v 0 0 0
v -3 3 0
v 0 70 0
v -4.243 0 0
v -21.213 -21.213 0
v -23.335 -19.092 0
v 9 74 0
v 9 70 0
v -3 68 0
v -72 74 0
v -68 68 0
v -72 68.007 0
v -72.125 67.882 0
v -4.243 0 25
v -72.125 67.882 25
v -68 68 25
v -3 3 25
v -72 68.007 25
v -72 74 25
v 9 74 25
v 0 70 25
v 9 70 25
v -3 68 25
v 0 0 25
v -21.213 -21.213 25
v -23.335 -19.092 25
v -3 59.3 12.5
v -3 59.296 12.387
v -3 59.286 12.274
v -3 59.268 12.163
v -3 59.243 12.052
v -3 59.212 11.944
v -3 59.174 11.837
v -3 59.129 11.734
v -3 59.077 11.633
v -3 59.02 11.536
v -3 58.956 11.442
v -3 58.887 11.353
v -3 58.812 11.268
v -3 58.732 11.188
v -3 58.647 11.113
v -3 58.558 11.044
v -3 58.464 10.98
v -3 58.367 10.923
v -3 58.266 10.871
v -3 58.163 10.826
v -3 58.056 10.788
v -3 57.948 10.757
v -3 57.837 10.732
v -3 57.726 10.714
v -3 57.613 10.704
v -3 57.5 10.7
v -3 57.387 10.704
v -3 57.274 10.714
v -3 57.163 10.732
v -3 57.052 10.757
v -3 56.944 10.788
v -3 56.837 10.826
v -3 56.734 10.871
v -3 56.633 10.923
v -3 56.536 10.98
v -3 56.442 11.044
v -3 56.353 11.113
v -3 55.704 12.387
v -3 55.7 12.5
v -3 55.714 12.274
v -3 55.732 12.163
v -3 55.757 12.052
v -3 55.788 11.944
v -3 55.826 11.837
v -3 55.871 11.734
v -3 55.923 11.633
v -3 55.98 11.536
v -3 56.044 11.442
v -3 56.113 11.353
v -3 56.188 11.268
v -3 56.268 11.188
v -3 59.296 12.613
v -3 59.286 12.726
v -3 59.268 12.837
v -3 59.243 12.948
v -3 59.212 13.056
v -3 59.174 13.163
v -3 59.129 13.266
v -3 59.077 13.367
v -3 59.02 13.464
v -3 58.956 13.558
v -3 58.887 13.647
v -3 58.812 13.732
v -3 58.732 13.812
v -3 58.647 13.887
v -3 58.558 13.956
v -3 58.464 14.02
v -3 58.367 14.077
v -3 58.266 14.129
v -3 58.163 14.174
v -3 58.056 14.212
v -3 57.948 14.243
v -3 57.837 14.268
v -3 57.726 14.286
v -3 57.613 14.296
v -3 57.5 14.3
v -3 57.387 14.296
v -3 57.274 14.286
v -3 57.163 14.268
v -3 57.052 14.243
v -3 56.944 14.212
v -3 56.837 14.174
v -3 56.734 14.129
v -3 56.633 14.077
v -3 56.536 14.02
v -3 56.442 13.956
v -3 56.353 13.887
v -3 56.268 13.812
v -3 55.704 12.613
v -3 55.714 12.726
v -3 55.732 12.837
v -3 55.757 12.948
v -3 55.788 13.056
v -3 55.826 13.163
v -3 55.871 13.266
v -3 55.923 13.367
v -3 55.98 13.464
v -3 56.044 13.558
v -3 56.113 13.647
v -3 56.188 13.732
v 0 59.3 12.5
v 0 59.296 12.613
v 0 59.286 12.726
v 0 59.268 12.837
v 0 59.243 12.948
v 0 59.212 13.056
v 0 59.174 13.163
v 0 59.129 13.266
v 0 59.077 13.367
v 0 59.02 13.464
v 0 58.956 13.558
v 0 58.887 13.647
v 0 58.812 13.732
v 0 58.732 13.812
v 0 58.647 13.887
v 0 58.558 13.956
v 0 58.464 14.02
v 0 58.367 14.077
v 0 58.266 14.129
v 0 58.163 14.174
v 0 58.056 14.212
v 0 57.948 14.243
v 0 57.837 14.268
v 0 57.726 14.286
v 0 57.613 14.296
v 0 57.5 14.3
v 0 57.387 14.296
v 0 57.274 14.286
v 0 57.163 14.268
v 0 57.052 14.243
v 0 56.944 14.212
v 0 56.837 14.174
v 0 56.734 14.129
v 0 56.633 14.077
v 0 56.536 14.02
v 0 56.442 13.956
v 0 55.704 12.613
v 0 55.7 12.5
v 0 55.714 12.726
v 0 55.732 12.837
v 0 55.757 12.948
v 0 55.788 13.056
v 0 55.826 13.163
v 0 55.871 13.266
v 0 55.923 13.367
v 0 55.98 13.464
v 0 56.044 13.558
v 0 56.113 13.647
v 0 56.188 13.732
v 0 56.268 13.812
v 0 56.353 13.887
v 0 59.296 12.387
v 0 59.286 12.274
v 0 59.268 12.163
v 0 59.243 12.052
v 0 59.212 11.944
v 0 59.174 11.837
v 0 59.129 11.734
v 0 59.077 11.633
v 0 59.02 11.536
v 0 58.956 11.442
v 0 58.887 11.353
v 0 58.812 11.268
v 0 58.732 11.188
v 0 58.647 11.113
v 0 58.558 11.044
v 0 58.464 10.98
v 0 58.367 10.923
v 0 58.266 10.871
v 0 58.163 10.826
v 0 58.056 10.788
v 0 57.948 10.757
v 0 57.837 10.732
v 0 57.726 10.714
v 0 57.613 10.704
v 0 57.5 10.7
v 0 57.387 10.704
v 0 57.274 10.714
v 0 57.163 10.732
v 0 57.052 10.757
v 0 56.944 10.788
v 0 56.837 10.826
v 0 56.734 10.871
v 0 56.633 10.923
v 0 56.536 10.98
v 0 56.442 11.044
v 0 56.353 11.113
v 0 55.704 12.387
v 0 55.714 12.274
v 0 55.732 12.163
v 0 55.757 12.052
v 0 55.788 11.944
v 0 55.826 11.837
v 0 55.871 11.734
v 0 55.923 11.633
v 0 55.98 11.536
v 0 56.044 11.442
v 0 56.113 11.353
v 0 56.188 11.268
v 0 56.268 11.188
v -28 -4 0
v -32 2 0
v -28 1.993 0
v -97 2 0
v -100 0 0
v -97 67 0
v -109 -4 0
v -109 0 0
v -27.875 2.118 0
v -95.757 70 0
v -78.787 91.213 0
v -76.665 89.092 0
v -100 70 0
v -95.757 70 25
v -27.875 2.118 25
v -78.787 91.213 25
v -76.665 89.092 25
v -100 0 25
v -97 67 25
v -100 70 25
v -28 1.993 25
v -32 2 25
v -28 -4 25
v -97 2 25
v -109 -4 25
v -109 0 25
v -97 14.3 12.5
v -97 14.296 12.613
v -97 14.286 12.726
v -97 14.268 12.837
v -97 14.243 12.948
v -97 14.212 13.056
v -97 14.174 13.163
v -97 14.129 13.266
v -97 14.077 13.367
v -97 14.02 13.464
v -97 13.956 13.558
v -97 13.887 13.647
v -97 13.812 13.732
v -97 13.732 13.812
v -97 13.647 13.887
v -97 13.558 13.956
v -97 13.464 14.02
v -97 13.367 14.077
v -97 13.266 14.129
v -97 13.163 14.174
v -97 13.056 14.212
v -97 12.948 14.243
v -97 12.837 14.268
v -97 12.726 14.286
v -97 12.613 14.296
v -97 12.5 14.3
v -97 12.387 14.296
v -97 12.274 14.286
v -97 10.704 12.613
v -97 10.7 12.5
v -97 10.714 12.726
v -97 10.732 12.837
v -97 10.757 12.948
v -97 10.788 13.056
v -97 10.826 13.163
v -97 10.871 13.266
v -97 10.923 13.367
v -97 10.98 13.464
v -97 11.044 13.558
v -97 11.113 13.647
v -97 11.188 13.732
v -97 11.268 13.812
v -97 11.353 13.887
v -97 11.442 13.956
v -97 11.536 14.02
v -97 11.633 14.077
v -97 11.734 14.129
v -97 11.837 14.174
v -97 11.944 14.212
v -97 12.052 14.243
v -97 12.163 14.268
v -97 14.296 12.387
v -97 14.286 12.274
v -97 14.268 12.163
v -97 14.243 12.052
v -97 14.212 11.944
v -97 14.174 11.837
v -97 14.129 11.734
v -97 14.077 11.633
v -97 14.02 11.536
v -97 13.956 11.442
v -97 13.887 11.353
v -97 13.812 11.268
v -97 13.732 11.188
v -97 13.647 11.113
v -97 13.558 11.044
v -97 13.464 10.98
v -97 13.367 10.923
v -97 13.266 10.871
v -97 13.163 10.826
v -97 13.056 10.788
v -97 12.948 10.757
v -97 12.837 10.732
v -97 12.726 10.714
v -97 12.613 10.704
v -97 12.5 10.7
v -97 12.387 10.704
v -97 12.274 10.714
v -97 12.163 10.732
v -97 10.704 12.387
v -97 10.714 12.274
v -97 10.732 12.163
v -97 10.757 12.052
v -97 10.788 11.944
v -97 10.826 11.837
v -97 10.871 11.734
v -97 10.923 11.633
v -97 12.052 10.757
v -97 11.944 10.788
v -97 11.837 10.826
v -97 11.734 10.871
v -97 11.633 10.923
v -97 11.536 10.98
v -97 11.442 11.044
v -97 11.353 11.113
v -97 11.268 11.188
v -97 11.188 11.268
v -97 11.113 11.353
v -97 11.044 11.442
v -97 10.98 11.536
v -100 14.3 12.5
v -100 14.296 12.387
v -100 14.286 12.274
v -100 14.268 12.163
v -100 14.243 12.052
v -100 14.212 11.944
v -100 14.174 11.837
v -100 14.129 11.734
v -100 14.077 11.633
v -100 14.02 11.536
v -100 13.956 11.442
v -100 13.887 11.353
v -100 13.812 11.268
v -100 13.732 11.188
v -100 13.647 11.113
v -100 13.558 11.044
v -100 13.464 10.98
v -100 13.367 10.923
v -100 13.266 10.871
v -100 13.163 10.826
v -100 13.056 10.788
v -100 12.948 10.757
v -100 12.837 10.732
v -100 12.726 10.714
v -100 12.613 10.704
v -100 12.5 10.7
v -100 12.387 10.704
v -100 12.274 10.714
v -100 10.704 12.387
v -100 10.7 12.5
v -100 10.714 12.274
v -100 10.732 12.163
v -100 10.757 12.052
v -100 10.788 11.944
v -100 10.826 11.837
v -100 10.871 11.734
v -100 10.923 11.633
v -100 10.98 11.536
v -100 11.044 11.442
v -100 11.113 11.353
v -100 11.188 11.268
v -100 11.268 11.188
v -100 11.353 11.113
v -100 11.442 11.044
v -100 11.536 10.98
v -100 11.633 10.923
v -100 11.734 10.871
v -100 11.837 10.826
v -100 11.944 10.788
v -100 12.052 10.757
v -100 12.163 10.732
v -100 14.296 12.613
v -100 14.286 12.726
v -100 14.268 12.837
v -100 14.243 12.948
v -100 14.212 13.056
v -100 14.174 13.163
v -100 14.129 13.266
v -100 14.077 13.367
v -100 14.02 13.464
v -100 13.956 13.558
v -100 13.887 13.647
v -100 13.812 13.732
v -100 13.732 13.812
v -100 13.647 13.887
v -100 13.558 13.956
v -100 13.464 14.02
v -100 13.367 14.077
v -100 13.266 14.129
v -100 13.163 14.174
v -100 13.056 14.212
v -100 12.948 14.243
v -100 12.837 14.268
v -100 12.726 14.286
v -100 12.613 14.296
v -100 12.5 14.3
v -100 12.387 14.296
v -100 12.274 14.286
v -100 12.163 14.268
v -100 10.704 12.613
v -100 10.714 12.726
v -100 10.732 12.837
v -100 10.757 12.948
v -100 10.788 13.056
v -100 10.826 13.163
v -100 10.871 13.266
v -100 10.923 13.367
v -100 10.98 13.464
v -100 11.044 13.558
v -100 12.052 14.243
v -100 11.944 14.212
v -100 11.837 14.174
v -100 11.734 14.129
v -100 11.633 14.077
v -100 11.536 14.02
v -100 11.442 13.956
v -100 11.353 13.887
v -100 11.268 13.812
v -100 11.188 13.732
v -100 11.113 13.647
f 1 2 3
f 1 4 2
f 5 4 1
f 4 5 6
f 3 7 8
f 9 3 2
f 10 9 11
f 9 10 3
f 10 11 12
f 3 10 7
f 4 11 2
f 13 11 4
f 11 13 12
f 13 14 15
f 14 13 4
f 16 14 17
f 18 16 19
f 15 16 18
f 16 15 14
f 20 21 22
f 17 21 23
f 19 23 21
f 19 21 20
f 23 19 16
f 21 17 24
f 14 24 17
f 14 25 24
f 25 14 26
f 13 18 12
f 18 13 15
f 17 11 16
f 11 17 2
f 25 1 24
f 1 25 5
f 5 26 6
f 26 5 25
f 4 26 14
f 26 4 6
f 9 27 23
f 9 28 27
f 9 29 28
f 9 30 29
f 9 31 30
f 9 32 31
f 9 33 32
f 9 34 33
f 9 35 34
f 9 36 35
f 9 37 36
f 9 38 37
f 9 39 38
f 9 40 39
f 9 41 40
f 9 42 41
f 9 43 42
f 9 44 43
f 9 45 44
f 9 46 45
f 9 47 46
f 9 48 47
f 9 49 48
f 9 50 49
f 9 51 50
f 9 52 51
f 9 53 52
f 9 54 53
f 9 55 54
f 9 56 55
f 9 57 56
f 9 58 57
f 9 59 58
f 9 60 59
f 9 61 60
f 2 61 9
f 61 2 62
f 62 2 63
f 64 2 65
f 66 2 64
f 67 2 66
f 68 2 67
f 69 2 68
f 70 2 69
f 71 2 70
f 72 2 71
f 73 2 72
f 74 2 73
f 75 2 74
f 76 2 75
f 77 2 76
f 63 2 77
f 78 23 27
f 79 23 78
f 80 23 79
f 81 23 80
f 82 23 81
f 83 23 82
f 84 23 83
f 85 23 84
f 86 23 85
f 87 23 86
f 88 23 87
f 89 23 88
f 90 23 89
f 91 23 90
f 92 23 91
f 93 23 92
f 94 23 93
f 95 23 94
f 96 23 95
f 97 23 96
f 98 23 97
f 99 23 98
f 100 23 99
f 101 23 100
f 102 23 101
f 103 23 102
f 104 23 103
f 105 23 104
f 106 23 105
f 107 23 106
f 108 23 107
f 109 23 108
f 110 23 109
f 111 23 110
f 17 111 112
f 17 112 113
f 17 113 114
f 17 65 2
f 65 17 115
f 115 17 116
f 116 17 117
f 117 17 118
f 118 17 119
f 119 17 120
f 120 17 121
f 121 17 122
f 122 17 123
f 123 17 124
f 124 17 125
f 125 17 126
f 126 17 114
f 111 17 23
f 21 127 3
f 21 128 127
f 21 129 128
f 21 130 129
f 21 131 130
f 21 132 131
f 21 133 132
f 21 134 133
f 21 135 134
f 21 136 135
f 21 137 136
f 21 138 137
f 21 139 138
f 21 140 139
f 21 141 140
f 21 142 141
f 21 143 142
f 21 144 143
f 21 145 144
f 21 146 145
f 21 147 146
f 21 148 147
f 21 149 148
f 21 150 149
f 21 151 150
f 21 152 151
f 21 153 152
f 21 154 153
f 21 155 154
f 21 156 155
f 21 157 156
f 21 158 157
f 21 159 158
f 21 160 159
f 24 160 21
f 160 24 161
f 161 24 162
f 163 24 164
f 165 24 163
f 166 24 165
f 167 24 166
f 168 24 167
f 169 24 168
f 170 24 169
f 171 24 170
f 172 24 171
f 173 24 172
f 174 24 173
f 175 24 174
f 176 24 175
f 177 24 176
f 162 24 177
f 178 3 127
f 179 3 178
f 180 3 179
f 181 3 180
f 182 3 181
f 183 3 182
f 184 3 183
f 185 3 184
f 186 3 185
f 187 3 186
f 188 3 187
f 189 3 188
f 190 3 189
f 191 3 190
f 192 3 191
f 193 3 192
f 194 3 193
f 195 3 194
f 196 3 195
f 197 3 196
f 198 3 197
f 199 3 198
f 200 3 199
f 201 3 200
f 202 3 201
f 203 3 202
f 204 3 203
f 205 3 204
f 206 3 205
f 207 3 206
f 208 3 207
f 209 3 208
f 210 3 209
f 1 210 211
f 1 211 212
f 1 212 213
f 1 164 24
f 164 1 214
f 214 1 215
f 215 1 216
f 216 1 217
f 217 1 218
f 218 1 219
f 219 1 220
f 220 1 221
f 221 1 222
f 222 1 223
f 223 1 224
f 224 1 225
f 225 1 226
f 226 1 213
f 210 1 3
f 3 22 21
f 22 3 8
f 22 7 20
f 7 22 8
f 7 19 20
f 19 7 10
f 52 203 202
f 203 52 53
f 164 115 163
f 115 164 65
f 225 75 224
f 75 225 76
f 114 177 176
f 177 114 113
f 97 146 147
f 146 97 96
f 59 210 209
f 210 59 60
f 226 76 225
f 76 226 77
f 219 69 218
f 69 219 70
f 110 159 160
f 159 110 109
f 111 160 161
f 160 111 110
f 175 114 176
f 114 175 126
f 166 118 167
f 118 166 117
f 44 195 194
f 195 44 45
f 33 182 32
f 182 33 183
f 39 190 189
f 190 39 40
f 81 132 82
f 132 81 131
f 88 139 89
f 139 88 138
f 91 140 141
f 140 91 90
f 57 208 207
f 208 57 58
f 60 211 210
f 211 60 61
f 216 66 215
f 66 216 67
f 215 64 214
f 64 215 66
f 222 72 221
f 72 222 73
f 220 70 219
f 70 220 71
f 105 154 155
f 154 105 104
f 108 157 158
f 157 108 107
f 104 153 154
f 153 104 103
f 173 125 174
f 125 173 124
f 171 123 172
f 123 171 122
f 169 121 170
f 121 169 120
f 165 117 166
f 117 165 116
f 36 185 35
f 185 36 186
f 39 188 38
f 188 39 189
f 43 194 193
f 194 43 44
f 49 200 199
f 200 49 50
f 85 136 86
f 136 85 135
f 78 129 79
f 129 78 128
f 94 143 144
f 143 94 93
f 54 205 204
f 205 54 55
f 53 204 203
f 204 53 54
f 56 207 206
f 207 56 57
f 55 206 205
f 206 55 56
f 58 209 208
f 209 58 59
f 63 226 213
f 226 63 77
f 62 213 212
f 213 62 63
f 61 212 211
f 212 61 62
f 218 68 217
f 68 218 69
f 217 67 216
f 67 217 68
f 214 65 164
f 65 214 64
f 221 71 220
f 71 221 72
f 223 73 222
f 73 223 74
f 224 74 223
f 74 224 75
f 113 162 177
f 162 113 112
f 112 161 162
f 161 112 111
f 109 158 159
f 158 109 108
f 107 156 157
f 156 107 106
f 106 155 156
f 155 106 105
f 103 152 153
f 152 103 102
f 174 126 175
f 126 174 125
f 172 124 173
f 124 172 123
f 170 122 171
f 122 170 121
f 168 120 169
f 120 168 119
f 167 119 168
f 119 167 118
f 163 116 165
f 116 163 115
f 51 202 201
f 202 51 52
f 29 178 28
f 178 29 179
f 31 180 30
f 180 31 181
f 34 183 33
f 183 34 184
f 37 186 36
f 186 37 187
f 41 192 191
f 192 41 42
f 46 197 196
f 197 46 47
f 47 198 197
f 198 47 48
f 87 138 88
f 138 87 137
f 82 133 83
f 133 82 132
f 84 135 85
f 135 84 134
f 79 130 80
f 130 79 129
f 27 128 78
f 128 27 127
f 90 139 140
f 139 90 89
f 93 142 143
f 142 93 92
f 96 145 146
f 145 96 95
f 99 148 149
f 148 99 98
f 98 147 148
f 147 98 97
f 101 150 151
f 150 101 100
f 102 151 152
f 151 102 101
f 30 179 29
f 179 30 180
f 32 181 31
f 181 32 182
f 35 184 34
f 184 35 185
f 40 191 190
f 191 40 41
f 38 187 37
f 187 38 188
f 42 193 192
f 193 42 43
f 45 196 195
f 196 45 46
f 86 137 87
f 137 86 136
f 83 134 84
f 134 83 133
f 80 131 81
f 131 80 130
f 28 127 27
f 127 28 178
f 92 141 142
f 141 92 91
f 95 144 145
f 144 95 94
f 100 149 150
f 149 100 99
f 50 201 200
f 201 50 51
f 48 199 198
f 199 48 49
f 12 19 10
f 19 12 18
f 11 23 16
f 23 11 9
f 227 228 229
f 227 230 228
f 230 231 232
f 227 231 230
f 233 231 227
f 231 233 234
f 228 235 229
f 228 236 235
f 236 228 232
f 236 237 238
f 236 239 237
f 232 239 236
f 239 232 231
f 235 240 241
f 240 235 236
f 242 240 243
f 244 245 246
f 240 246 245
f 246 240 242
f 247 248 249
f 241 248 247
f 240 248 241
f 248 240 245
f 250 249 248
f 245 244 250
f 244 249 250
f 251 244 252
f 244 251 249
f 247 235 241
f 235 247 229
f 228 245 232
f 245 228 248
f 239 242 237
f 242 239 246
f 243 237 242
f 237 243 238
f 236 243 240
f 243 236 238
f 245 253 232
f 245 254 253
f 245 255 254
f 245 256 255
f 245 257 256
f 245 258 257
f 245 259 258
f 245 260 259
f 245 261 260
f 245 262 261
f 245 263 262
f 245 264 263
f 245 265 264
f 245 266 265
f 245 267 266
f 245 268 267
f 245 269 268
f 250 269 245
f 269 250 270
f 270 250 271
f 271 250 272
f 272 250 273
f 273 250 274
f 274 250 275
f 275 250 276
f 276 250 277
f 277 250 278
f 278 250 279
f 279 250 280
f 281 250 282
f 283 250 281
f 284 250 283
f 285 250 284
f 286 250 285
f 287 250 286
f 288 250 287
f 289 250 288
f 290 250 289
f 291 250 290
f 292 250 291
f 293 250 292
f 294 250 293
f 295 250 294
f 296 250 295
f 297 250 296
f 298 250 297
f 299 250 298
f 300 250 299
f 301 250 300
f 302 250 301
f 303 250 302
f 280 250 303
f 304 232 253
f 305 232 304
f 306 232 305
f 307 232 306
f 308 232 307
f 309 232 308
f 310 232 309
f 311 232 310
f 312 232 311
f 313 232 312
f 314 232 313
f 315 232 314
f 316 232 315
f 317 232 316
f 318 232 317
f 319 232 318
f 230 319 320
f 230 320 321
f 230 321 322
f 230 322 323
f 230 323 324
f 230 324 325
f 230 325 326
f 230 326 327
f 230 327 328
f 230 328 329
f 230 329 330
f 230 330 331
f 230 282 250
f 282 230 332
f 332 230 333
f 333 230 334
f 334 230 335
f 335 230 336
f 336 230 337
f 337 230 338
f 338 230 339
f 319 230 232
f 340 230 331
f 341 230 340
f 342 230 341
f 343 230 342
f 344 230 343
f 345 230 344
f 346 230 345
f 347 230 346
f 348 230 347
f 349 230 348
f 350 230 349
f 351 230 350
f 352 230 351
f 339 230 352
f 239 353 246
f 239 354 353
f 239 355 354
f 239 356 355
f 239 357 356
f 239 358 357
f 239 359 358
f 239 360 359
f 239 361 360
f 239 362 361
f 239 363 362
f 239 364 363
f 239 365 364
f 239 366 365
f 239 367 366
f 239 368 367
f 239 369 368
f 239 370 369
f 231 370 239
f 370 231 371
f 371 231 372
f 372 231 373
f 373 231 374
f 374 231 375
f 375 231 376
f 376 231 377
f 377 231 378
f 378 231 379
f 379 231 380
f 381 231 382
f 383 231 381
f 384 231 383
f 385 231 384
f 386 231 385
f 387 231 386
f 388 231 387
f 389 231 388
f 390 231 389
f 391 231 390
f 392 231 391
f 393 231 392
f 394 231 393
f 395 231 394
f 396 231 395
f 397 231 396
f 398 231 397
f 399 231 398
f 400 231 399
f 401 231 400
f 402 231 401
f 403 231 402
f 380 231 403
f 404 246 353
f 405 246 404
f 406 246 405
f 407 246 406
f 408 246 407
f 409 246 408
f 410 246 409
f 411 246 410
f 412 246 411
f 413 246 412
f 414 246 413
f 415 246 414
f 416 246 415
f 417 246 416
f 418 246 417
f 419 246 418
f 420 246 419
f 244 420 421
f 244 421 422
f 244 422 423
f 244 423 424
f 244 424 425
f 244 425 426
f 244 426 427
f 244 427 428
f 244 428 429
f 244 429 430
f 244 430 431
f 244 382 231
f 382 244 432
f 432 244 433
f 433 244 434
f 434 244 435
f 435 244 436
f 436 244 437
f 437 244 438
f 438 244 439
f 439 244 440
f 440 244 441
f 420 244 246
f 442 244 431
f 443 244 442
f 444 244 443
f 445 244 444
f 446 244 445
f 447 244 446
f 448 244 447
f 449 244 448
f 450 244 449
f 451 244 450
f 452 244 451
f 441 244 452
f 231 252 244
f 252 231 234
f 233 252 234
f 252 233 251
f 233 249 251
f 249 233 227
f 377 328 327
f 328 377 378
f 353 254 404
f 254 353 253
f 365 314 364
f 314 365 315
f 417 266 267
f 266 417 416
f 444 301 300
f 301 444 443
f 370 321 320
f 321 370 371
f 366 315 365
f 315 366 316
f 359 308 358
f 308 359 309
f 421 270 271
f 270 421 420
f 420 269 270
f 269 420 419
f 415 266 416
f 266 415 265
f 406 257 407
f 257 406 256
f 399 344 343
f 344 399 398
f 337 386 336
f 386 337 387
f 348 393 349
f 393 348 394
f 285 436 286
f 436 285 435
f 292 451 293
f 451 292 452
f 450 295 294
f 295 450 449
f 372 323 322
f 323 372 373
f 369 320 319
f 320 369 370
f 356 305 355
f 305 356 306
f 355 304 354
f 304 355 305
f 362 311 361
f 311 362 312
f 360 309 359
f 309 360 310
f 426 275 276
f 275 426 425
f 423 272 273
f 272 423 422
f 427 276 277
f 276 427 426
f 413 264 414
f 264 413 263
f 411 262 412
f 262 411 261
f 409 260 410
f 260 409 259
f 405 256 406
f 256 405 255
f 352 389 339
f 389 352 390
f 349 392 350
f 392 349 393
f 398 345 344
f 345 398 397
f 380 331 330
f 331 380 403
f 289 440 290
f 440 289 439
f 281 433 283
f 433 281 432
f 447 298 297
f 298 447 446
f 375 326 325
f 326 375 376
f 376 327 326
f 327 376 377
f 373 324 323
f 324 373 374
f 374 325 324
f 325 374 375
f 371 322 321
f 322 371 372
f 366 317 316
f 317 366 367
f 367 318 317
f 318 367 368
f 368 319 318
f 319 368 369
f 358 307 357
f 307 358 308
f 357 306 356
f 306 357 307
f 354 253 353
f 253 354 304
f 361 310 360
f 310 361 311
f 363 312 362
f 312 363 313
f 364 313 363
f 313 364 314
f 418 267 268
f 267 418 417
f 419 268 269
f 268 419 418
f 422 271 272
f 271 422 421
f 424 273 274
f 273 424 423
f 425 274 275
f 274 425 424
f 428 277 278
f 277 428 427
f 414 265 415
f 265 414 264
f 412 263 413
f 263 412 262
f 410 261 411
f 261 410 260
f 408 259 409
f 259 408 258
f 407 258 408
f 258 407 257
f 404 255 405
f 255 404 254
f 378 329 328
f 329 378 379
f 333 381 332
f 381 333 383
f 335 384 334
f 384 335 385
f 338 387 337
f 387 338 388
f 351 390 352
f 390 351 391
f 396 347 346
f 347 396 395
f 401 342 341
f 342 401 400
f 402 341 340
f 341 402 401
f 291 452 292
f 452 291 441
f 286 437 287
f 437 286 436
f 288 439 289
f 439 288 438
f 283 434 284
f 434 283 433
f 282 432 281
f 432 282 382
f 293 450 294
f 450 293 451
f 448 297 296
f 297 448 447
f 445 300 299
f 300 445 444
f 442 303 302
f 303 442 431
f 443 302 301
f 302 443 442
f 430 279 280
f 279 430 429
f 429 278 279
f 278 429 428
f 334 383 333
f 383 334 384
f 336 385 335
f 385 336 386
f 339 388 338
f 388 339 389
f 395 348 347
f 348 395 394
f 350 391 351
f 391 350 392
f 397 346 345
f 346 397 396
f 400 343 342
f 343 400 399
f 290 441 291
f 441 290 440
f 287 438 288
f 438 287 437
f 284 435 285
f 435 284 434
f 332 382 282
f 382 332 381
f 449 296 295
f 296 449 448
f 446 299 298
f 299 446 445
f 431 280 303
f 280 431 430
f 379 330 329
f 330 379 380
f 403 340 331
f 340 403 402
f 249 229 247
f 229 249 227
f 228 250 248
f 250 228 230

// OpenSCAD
 module clampraw() {
    //cube([25,25,3]);
    translate([0,0,9])
    cube([25,25,3]);
    translate([0,-4,0])
    cube([25,4,12]);
}


module clampTop() {
    rotate([0,0,180])
    translate([-25,0,-9])
    difference() {
        clampraw();
        translate([12.5,12.5,0])
        color("black")
        cylinder(12,d=3.6,$fn=100);
    }
}

module basic45support() {
    // basic board grab
    translate([0,70,0])
    clampTop();

    // base the rest of the way down from top
    cube([25,45,3]);

    // back and bottom supports
    rotate([45,0,0])
    union() {
        cube([25,99,3]);
        cube([25,3,30]);
    }

    // Rear vertical support
    translate([0,68,0])
    cube([25,6,72]);
}

rotate([0,-90,0])
basic45support();

translate([-100,70,0])
rotate([0,-90,180])
basic45support();
